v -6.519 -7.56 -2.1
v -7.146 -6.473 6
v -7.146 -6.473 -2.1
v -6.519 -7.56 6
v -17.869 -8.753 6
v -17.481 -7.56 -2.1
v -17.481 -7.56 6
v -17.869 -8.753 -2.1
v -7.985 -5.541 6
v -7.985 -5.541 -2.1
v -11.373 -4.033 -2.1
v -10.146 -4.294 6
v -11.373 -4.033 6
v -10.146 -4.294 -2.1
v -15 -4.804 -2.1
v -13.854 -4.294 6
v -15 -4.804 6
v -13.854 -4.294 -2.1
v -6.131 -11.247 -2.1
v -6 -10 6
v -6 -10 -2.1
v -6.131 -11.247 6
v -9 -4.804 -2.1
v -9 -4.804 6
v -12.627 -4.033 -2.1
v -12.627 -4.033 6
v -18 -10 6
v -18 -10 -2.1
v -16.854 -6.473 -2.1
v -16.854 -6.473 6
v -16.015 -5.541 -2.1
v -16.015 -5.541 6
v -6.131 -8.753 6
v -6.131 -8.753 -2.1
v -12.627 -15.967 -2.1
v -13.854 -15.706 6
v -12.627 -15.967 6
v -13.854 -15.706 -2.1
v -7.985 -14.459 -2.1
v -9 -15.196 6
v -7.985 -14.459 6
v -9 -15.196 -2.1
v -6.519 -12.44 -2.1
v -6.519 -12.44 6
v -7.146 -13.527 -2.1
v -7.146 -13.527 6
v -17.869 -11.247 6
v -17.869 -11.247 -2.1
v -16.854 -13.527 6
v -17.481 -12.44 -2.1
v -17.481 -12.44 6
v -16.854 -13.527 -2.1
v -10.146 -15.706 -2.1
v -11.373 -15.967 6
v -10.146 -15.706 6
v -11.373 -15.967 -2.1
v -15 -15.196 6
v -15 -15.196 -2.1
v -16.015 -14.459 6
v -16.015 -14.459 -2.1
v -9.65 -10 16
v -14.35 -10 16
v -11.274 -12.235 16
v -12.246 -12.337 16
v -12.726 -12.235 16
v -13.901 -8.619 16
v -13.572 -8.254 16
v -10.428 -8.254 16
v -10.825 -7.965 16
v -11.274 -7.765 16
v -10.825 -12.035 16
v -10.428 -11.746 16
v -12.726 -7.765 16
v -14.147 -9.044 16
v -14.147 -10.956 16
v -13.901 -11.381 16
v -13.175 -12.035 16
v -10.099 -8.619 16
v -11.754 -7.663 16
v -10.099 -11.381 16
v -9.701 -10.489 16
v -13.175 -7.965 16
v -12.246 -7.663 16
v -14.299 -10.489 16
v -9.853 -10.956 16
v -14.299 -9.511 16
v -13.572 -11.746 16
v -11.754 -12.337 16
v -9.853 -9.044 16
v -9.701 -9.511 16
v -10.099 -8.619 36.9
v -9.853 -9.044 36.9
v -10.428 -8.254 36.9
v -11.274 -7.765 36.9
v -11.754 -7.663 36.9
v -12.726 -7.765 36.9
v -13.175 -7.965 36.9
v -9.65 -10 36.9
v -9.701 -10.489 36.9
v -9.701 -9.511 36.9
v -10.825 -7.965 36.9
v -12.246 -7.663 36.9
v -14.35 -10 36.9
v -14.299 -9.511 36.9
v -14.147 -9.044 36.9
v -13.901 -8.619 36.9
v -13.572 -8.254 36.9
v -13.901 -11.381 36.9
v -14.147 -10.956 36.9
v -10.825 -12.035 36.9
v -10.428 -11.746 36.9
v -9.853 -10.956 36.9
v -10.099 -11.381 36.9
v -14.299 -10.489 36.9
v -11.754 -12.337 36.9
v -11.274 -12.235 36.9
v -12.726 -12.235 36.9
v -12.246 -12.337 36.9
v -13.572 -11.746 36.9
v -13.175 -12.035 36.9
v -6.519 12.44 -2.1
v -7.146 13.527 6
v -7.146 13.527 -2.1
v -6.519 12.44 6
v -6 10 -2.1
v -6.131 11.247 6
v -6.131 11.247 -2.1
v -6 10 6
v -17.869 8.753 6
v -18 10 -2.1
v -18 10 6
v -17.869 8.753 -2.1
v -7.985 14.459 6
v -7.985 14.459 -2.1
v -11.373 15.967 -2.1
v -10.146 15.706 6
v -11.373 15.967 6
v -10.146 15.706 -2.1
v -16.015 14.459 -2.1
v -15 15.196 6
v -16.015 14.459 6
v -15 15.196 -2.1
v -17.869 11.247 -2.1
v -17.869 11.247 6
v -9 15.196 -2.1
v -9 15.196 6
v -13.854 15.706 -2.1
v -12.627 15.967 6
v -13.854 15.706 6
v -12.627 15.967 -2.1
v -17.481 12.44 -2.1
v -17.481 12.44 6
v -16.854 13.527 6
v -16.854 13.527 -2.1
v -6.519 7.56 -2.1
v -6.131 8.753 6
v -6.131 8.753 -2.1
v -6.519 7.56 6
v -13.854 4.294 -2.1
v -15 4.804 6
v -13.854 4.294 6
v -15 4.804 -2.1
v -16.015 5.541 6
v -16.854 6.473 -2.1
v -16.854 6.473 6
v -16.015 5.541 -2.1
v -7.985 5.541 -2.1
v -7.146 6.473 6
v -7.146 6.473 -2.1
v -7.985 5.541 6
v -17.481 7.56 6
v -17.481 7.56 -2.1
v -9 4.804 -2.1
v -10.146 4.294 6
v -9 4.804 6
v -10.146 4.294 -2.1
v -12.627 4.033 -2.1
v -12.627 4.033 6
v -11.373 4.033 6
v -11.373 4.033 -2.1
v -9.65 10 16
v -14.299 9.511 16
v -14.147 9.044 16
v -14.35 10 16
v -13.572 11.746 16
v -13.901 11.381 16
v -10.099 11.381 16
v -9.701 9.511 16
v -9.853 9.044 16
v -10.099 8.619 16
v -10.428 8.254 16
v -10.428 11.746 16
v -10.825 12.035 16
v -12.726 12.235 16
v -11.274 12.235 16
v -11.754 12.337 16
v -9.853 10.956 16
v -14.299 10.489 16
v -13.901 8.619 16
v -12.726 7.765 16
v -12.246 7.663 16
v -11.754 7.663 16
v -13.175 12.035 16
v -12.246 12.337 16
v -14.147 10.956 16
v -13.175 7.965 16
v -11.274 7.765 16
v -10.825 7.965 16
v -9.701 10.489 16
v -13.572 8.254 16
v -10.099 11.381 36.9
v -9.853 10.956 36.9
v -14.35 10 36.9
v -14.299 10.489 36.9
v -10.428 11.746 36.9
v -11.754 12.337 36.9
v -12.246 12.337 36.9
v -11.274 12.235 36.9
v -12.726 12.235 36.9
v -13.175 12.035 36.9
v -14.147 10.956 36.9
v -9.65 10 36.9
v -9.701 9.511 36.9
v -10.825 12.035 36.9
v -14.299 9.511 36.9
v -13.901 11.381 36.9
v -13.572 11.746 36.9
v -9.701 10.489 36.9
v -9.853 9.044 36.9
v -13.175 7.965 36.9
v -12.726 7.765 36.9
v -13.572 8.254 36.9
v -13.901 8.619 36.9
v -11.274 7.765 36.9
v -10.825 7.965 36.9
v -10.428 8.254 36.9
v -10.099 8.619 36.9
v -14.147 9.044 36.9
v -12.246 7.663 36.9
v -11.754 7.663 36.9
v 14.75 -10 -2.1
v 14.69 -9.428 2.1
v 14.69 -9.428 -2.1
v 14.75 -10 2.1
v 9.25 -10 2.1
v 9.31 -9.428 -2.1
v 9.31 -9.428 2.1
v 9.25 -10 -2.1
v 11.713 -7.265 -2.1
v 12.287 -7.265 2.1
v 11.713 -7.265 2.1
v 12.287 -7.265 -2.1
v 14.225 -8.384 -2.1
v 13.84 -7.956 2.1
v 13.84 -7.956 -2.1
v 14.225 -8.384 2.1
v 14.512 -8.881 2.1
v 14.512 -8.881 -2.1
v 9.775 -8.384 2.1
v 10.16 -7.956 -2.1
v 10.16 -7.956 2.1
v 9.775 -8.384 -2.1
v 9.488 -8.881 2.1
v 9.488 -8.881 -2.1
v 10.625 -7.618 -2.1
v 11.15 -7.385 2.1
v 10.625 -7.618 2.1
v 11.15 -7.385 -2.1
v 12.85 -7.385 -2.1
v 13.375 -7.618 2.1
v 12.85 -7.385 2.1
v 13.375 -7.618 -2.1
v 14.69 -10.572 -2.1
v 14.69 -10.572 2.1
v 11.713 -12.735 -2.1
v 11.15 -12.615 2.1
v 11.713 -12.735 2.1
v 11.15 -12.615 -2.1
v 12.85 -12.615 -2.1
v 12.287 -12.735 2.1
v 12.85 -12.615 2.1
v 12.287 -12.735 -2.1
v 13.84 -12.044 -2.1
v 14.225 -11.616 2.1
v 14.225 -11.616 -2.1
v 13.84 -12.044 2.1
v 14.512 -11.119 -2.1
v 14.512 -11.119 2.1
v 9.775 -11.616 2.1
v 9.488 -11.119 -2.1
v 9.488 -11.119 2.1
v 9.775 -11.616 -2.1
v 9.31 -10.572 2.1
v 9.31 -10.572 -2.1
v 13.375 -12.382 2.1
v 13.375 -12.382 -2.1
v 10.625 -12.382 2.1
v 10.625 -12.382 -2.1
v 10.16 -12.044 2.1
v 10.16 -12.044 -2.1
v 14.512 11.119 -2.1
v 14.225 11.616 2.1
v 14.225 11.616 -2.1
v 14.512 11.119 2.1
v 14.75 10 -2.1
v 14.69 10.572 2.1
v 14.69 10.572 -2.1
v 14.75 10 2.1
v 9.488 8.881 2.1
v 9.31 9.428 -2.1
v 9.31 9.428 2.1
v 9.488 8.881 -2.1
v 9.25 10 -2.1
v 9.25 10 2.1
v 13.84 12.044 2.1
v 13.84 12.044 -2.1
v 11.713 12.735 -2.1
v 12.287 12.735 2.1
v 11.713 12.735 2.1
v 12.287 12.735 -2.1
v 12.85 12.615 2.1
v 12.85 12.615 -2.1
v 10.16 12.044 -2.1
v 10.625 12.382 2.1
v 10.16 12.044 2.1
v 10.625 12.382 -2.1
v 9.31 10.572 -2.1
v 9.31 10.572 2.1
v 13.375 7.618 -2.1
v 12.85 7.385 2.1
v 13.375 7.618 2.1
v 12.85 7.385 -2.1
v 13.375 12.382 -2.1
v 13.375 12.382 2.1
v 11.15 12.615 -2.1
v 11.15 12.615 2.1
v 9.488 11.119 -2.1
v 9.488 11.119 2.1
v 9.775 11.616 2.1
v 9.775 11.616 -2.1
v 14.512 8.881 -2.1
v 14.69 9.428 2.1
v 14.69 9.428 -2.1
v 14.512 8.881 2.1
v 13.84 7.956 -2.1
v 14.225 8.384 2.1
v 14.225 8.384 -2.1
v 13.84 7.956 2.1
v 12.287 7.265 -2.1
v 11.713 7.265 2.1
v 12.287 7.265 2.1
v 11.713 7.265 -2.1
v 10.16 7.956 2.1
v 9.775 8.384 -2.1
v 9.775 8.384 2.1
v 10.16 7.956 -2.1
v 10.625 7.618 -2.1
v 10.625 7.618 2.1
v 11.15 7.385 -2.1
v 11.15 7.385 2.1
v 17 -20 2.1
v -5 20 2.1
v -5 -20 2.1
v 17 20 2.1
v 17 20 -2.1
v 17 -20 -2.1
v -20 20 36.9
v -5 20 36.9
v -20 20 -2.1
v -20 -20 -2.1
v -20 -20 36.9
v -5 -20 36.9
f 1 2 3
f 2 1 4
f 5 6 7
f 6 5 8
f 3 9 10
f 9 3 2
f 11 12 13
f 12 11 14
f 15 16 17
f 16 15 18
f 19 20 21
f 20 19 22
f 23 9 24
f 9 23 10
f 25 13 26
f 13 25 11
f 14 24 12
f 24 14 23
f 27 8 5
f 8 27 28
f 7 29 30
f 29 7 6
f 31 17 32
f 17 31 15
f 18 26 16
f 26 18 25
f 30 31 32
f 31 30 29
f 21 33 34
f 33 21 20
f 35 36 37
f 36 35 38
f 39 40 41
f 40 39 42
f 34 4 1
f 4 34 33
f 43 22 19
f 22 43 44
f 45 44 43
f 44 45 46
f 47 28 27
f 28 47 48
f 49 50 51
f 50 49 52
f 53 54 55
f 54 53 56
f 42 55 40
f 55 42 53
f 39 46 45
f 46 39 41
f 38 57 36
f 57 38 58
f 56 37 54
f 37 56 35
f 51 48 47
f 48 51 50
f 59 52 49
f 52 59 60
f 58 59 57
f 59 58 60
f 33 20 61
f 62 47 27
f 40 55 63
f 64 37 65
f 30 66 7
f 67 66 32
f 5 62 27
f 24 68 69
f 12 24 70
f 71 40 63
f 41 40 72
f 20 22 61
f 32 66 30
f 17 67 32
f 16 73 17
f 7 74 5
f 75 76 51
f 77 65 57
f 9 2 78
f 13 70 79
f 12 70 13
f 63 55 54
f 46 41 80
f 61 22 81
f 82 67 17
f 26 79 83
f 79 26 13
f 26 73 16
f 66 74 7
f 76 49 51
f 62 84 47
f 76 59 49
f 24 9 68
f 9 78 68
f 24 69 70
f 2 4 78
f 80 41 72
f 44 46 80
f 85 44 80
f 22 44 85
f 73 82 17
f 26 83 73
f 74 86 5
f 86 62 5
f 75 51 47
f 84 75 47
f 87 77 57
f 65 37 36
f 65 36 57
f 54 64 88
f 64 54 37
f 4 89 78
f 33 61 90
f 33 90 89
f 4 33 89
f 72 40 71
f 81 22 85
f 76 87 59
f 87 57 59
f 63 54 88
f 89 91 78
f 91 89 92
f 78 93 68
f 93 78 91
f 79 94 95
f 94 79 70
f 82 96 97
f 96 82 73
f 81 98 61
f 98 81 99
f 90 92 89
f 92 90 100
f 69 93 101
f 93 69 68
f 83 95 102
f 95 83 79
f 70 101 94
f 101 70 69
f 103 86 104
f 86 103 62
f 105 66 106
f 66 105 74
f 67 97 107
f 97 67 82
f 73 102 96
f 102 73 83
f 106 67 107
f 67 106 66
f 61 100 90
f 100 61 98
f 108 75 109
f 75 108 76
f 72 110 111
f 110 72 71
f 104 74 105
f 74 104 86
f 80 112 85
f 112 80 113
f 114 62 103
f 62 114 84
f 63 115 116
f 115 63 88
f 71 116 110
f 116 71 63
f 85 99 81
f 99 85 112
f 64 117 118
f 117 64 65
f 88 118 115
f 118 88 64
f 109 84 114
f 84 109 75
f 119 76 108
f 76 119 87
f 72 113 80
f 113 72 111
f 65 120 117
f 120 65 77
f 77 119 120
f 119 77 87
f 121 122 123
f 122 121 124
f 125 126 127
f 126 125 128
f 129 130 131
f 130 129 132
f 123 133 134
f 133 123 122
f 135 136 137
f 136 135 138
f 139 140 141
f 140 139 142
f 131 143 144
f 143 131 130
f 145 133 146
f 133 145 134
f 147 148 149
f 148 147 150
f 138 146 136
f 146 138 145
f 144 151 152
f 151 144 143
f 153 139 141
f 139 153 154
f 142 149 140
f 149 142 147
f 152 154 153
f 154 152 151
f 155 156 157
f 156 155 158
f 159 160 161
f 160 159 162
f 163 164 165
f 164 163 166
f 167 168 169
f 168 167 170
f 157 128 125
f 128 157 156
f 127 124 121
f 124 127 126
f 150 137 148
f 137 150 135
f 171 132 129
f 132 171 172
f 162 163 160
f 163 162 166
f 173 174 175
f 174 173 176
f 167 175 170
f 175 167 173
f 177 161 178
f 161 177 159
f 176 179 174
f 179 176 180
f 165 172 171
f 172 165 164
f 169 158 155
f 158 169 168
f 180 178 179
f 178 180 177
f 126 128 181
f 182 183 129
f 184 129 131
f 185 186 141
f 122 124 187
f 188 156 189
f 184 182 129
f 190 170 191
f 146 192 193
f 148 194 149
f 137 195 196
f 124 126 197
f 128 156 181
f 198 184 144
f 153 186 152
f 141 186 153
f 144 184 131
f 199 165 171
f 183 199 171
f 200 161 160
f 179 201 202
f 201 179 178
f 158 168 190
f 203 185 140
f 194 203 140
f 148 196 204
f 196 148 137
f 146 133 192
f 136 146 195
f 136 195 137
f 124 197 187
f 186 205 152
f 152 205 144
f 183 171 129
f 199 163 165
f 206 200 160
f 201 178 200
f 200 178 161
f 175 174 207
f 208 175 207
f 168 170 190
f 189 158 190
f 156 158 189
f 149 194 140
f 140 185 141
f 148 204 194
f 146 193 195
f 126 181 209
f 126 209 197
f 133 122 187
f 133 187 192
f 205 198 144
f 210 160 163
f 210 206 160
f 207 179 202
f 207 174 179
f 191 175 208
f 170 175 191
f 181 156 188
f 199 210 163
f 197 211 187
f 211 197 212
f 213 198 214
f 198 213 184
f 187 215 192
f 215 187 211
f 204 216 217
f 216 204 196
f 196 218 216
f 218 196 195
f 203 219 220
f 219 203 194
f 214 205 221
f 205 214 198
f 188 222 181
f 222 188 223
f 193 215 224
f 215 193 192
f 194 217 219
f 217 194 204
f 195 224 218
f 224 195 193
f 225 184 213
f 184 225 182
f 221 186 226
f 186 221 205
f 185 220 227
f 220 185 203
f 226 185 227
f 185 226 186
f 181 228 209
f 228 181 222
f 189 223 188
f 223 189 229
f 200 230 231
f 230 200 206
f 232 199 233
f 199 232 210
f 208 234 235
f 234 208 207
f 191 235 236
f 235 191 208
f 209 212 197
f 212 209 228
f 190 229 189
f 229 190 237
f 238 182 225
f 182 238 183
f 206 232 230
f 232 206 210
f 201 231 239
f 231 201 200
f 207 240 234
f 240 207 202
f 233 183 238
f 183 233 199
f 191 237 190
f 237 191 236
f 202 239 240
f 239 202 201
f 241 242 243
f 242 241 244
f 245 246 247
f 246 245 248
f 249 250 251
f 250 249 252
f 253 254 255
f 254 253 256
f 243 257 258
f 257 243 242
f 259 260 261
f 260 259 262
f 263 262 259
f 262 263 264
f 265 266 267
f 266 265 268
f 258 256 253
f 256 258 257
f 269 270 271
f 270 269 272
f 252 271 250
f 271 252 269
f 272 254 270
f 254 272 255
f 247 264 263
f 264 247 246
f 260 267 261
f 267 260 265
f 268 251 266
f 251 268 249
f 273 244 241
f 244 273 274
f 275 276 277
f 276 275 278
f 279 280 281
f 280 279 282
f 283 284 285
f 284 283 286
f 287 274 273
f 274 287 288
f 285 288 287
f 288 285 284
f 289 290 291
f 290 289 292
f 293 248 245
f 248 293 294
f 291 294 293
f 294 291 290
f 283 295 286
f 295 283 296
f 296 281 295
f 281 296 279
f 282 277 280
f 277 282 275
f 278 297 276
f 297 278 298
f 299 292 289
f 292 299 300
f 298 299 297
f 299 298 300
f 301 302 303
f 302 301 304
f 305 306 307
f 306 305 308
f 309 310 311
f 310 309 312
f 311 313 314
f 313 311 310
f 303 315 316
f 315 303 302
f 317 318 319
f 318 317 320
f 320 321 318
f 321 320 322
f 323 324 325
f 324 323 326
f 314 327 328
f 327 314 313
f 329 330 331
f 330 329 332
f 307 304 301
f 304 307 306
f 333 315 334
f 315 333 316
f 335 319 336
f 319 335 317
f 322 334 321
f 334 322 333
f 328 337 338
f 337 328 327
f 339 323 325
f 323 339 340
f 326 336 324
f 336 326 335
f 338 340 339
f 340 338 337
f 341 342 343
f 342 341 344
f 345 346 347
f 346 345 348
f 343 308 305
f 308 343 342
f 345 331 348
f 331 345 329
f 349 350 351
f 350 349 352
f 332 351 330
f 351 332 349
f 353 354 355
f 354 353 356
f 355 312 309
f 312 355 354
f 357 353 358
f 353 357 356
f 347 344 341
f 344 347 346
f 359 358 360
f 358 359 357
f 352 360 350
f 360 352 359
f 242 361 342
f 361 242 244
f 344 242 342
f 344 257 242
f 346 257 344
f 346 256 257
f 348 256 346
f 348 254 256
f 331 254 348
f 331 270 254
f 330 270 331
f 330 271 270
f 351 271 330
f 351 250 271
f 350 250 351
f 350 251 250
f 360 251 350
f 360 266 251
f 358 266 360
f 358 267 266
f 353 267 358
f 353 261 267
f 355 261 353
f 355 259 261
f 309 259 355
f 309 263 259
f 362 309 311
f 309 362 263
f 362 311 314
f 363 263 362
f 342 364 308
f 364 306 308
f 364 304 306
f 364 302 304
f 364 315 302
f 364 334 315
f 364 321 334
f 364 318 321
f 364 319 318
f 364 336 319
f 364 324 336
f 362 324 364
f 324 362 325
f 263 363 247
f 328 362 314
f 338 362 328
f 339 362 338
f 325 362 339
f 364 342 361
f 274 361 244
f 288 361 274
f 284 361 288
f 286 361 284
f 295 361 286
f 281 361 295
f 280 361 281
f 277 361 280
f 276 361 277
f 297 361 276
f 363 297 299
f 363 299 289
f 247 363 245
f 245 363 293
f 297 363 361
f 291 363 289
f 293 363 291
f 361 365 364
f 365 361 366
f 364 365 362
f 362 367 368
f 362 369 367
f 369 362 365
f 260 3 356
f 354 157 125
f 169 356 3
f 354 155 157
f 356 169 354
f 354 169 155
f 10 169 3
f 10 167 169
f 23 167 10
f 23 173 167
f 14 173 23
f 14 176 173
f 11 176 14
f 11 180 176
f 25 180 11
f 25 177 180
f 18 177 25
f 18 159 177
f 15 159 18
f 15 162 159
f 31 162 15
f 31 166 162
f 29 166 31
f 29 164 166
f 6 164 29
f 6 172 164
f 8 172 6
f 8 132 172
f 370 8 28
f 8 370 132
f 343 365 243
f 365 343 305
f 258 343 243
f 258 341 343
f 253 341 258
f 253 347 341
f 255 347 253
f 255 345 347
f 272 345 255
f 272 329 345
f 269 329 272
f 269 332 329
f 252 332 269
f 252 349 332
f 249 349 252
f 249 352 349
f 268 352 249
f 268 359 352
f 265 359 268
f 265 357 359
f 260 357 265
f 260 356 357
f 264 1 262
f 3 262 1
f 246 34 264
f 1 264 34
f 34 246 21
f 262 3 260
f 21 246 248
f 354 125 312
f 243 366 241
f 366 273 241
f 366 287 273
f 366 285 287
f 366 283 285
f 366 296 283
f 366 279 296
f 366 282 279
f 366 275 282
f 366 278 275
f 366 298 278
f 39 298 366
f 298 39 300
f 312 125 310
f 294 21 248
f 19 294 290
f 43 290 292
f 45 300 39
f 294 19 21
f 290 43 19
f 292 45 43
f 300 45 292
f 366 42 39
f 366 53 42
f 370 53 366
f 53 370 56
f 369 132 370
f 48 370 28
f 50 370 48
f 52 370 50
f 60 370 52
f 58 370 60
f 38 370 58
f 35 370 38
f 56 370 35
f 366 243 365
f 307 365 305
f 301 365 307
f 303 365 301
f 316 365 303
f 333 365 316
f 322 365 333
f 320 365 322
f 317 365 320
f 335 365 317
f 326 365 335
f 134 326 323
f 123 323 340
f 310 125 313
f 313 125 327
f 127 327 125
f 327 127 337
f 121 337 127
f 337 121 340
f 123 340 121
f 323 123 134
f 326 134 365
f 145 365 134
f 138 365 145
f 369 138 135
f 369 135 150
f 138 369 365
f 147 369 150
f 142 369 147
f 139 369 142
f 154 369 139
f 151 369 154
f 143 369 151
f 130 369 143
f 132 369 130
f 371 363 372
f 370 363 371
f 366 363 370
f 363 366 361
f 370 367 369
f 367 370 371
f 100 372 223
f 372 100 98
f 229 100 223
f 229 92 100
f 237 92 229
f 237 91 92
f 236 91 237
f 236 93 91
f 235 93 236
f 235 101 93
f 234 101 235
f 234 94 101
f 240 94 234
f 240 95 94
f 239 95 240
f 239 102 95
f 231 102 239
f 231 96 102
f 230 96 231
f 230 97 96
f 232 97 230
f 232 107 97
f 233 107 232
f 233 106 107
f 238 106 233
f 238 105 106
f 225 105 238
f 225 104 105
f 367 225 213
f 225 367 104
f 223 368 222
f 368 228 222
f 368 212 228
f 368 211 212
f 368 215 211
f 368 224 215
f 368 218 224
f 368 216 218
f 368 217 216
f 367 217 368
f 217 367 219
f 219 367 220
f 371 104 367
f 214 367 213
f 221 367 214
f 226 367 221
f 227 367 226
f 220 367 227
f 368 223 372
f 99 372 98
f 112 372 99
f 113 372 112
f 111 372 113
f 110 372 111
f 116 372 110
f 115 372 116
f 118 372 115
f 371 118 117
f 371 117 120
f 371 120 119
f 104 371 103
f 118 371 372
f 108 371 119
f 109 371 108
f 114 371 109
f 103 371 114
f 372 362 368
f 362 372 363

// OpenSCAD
$fn=30;

height = 39;

difference() {
    union() {
cube([34,40,4.2],center=true);
        translate([-12.5,0,height/2 - 4.2/2]) {
cube([15,40,height],center=true);
        }
    }

translate([-12,0,0]) {
    
    translate([0,-10,-4]) {
    cylinder(d=12,h=10);
    }
    
    translate([0,-10,6]) {
    cylinder(d1=12,d2=4.7,h=10);
    }
    
    translate([0,-10,-3]) {
        cylinder(d=4.7,h=40);
    }

    translate([0,10,-4]) {
        cylinder(d=12,h=10);
    }
    
    translate([0,10,6]) {
        cylinder(d1=12,d2=4.7,h=10);
    }
    
    translate([0,10,-3]) {
        cylinder(d=4.7,h=40);
    }
}


translate([12,0,0]) {
translate([0,-10,-3]) {
cylinder(d=5.5,h=6);
}

translate([0,10,-3]) {
cylinder(d=5.5,h=6);

}
}
}
